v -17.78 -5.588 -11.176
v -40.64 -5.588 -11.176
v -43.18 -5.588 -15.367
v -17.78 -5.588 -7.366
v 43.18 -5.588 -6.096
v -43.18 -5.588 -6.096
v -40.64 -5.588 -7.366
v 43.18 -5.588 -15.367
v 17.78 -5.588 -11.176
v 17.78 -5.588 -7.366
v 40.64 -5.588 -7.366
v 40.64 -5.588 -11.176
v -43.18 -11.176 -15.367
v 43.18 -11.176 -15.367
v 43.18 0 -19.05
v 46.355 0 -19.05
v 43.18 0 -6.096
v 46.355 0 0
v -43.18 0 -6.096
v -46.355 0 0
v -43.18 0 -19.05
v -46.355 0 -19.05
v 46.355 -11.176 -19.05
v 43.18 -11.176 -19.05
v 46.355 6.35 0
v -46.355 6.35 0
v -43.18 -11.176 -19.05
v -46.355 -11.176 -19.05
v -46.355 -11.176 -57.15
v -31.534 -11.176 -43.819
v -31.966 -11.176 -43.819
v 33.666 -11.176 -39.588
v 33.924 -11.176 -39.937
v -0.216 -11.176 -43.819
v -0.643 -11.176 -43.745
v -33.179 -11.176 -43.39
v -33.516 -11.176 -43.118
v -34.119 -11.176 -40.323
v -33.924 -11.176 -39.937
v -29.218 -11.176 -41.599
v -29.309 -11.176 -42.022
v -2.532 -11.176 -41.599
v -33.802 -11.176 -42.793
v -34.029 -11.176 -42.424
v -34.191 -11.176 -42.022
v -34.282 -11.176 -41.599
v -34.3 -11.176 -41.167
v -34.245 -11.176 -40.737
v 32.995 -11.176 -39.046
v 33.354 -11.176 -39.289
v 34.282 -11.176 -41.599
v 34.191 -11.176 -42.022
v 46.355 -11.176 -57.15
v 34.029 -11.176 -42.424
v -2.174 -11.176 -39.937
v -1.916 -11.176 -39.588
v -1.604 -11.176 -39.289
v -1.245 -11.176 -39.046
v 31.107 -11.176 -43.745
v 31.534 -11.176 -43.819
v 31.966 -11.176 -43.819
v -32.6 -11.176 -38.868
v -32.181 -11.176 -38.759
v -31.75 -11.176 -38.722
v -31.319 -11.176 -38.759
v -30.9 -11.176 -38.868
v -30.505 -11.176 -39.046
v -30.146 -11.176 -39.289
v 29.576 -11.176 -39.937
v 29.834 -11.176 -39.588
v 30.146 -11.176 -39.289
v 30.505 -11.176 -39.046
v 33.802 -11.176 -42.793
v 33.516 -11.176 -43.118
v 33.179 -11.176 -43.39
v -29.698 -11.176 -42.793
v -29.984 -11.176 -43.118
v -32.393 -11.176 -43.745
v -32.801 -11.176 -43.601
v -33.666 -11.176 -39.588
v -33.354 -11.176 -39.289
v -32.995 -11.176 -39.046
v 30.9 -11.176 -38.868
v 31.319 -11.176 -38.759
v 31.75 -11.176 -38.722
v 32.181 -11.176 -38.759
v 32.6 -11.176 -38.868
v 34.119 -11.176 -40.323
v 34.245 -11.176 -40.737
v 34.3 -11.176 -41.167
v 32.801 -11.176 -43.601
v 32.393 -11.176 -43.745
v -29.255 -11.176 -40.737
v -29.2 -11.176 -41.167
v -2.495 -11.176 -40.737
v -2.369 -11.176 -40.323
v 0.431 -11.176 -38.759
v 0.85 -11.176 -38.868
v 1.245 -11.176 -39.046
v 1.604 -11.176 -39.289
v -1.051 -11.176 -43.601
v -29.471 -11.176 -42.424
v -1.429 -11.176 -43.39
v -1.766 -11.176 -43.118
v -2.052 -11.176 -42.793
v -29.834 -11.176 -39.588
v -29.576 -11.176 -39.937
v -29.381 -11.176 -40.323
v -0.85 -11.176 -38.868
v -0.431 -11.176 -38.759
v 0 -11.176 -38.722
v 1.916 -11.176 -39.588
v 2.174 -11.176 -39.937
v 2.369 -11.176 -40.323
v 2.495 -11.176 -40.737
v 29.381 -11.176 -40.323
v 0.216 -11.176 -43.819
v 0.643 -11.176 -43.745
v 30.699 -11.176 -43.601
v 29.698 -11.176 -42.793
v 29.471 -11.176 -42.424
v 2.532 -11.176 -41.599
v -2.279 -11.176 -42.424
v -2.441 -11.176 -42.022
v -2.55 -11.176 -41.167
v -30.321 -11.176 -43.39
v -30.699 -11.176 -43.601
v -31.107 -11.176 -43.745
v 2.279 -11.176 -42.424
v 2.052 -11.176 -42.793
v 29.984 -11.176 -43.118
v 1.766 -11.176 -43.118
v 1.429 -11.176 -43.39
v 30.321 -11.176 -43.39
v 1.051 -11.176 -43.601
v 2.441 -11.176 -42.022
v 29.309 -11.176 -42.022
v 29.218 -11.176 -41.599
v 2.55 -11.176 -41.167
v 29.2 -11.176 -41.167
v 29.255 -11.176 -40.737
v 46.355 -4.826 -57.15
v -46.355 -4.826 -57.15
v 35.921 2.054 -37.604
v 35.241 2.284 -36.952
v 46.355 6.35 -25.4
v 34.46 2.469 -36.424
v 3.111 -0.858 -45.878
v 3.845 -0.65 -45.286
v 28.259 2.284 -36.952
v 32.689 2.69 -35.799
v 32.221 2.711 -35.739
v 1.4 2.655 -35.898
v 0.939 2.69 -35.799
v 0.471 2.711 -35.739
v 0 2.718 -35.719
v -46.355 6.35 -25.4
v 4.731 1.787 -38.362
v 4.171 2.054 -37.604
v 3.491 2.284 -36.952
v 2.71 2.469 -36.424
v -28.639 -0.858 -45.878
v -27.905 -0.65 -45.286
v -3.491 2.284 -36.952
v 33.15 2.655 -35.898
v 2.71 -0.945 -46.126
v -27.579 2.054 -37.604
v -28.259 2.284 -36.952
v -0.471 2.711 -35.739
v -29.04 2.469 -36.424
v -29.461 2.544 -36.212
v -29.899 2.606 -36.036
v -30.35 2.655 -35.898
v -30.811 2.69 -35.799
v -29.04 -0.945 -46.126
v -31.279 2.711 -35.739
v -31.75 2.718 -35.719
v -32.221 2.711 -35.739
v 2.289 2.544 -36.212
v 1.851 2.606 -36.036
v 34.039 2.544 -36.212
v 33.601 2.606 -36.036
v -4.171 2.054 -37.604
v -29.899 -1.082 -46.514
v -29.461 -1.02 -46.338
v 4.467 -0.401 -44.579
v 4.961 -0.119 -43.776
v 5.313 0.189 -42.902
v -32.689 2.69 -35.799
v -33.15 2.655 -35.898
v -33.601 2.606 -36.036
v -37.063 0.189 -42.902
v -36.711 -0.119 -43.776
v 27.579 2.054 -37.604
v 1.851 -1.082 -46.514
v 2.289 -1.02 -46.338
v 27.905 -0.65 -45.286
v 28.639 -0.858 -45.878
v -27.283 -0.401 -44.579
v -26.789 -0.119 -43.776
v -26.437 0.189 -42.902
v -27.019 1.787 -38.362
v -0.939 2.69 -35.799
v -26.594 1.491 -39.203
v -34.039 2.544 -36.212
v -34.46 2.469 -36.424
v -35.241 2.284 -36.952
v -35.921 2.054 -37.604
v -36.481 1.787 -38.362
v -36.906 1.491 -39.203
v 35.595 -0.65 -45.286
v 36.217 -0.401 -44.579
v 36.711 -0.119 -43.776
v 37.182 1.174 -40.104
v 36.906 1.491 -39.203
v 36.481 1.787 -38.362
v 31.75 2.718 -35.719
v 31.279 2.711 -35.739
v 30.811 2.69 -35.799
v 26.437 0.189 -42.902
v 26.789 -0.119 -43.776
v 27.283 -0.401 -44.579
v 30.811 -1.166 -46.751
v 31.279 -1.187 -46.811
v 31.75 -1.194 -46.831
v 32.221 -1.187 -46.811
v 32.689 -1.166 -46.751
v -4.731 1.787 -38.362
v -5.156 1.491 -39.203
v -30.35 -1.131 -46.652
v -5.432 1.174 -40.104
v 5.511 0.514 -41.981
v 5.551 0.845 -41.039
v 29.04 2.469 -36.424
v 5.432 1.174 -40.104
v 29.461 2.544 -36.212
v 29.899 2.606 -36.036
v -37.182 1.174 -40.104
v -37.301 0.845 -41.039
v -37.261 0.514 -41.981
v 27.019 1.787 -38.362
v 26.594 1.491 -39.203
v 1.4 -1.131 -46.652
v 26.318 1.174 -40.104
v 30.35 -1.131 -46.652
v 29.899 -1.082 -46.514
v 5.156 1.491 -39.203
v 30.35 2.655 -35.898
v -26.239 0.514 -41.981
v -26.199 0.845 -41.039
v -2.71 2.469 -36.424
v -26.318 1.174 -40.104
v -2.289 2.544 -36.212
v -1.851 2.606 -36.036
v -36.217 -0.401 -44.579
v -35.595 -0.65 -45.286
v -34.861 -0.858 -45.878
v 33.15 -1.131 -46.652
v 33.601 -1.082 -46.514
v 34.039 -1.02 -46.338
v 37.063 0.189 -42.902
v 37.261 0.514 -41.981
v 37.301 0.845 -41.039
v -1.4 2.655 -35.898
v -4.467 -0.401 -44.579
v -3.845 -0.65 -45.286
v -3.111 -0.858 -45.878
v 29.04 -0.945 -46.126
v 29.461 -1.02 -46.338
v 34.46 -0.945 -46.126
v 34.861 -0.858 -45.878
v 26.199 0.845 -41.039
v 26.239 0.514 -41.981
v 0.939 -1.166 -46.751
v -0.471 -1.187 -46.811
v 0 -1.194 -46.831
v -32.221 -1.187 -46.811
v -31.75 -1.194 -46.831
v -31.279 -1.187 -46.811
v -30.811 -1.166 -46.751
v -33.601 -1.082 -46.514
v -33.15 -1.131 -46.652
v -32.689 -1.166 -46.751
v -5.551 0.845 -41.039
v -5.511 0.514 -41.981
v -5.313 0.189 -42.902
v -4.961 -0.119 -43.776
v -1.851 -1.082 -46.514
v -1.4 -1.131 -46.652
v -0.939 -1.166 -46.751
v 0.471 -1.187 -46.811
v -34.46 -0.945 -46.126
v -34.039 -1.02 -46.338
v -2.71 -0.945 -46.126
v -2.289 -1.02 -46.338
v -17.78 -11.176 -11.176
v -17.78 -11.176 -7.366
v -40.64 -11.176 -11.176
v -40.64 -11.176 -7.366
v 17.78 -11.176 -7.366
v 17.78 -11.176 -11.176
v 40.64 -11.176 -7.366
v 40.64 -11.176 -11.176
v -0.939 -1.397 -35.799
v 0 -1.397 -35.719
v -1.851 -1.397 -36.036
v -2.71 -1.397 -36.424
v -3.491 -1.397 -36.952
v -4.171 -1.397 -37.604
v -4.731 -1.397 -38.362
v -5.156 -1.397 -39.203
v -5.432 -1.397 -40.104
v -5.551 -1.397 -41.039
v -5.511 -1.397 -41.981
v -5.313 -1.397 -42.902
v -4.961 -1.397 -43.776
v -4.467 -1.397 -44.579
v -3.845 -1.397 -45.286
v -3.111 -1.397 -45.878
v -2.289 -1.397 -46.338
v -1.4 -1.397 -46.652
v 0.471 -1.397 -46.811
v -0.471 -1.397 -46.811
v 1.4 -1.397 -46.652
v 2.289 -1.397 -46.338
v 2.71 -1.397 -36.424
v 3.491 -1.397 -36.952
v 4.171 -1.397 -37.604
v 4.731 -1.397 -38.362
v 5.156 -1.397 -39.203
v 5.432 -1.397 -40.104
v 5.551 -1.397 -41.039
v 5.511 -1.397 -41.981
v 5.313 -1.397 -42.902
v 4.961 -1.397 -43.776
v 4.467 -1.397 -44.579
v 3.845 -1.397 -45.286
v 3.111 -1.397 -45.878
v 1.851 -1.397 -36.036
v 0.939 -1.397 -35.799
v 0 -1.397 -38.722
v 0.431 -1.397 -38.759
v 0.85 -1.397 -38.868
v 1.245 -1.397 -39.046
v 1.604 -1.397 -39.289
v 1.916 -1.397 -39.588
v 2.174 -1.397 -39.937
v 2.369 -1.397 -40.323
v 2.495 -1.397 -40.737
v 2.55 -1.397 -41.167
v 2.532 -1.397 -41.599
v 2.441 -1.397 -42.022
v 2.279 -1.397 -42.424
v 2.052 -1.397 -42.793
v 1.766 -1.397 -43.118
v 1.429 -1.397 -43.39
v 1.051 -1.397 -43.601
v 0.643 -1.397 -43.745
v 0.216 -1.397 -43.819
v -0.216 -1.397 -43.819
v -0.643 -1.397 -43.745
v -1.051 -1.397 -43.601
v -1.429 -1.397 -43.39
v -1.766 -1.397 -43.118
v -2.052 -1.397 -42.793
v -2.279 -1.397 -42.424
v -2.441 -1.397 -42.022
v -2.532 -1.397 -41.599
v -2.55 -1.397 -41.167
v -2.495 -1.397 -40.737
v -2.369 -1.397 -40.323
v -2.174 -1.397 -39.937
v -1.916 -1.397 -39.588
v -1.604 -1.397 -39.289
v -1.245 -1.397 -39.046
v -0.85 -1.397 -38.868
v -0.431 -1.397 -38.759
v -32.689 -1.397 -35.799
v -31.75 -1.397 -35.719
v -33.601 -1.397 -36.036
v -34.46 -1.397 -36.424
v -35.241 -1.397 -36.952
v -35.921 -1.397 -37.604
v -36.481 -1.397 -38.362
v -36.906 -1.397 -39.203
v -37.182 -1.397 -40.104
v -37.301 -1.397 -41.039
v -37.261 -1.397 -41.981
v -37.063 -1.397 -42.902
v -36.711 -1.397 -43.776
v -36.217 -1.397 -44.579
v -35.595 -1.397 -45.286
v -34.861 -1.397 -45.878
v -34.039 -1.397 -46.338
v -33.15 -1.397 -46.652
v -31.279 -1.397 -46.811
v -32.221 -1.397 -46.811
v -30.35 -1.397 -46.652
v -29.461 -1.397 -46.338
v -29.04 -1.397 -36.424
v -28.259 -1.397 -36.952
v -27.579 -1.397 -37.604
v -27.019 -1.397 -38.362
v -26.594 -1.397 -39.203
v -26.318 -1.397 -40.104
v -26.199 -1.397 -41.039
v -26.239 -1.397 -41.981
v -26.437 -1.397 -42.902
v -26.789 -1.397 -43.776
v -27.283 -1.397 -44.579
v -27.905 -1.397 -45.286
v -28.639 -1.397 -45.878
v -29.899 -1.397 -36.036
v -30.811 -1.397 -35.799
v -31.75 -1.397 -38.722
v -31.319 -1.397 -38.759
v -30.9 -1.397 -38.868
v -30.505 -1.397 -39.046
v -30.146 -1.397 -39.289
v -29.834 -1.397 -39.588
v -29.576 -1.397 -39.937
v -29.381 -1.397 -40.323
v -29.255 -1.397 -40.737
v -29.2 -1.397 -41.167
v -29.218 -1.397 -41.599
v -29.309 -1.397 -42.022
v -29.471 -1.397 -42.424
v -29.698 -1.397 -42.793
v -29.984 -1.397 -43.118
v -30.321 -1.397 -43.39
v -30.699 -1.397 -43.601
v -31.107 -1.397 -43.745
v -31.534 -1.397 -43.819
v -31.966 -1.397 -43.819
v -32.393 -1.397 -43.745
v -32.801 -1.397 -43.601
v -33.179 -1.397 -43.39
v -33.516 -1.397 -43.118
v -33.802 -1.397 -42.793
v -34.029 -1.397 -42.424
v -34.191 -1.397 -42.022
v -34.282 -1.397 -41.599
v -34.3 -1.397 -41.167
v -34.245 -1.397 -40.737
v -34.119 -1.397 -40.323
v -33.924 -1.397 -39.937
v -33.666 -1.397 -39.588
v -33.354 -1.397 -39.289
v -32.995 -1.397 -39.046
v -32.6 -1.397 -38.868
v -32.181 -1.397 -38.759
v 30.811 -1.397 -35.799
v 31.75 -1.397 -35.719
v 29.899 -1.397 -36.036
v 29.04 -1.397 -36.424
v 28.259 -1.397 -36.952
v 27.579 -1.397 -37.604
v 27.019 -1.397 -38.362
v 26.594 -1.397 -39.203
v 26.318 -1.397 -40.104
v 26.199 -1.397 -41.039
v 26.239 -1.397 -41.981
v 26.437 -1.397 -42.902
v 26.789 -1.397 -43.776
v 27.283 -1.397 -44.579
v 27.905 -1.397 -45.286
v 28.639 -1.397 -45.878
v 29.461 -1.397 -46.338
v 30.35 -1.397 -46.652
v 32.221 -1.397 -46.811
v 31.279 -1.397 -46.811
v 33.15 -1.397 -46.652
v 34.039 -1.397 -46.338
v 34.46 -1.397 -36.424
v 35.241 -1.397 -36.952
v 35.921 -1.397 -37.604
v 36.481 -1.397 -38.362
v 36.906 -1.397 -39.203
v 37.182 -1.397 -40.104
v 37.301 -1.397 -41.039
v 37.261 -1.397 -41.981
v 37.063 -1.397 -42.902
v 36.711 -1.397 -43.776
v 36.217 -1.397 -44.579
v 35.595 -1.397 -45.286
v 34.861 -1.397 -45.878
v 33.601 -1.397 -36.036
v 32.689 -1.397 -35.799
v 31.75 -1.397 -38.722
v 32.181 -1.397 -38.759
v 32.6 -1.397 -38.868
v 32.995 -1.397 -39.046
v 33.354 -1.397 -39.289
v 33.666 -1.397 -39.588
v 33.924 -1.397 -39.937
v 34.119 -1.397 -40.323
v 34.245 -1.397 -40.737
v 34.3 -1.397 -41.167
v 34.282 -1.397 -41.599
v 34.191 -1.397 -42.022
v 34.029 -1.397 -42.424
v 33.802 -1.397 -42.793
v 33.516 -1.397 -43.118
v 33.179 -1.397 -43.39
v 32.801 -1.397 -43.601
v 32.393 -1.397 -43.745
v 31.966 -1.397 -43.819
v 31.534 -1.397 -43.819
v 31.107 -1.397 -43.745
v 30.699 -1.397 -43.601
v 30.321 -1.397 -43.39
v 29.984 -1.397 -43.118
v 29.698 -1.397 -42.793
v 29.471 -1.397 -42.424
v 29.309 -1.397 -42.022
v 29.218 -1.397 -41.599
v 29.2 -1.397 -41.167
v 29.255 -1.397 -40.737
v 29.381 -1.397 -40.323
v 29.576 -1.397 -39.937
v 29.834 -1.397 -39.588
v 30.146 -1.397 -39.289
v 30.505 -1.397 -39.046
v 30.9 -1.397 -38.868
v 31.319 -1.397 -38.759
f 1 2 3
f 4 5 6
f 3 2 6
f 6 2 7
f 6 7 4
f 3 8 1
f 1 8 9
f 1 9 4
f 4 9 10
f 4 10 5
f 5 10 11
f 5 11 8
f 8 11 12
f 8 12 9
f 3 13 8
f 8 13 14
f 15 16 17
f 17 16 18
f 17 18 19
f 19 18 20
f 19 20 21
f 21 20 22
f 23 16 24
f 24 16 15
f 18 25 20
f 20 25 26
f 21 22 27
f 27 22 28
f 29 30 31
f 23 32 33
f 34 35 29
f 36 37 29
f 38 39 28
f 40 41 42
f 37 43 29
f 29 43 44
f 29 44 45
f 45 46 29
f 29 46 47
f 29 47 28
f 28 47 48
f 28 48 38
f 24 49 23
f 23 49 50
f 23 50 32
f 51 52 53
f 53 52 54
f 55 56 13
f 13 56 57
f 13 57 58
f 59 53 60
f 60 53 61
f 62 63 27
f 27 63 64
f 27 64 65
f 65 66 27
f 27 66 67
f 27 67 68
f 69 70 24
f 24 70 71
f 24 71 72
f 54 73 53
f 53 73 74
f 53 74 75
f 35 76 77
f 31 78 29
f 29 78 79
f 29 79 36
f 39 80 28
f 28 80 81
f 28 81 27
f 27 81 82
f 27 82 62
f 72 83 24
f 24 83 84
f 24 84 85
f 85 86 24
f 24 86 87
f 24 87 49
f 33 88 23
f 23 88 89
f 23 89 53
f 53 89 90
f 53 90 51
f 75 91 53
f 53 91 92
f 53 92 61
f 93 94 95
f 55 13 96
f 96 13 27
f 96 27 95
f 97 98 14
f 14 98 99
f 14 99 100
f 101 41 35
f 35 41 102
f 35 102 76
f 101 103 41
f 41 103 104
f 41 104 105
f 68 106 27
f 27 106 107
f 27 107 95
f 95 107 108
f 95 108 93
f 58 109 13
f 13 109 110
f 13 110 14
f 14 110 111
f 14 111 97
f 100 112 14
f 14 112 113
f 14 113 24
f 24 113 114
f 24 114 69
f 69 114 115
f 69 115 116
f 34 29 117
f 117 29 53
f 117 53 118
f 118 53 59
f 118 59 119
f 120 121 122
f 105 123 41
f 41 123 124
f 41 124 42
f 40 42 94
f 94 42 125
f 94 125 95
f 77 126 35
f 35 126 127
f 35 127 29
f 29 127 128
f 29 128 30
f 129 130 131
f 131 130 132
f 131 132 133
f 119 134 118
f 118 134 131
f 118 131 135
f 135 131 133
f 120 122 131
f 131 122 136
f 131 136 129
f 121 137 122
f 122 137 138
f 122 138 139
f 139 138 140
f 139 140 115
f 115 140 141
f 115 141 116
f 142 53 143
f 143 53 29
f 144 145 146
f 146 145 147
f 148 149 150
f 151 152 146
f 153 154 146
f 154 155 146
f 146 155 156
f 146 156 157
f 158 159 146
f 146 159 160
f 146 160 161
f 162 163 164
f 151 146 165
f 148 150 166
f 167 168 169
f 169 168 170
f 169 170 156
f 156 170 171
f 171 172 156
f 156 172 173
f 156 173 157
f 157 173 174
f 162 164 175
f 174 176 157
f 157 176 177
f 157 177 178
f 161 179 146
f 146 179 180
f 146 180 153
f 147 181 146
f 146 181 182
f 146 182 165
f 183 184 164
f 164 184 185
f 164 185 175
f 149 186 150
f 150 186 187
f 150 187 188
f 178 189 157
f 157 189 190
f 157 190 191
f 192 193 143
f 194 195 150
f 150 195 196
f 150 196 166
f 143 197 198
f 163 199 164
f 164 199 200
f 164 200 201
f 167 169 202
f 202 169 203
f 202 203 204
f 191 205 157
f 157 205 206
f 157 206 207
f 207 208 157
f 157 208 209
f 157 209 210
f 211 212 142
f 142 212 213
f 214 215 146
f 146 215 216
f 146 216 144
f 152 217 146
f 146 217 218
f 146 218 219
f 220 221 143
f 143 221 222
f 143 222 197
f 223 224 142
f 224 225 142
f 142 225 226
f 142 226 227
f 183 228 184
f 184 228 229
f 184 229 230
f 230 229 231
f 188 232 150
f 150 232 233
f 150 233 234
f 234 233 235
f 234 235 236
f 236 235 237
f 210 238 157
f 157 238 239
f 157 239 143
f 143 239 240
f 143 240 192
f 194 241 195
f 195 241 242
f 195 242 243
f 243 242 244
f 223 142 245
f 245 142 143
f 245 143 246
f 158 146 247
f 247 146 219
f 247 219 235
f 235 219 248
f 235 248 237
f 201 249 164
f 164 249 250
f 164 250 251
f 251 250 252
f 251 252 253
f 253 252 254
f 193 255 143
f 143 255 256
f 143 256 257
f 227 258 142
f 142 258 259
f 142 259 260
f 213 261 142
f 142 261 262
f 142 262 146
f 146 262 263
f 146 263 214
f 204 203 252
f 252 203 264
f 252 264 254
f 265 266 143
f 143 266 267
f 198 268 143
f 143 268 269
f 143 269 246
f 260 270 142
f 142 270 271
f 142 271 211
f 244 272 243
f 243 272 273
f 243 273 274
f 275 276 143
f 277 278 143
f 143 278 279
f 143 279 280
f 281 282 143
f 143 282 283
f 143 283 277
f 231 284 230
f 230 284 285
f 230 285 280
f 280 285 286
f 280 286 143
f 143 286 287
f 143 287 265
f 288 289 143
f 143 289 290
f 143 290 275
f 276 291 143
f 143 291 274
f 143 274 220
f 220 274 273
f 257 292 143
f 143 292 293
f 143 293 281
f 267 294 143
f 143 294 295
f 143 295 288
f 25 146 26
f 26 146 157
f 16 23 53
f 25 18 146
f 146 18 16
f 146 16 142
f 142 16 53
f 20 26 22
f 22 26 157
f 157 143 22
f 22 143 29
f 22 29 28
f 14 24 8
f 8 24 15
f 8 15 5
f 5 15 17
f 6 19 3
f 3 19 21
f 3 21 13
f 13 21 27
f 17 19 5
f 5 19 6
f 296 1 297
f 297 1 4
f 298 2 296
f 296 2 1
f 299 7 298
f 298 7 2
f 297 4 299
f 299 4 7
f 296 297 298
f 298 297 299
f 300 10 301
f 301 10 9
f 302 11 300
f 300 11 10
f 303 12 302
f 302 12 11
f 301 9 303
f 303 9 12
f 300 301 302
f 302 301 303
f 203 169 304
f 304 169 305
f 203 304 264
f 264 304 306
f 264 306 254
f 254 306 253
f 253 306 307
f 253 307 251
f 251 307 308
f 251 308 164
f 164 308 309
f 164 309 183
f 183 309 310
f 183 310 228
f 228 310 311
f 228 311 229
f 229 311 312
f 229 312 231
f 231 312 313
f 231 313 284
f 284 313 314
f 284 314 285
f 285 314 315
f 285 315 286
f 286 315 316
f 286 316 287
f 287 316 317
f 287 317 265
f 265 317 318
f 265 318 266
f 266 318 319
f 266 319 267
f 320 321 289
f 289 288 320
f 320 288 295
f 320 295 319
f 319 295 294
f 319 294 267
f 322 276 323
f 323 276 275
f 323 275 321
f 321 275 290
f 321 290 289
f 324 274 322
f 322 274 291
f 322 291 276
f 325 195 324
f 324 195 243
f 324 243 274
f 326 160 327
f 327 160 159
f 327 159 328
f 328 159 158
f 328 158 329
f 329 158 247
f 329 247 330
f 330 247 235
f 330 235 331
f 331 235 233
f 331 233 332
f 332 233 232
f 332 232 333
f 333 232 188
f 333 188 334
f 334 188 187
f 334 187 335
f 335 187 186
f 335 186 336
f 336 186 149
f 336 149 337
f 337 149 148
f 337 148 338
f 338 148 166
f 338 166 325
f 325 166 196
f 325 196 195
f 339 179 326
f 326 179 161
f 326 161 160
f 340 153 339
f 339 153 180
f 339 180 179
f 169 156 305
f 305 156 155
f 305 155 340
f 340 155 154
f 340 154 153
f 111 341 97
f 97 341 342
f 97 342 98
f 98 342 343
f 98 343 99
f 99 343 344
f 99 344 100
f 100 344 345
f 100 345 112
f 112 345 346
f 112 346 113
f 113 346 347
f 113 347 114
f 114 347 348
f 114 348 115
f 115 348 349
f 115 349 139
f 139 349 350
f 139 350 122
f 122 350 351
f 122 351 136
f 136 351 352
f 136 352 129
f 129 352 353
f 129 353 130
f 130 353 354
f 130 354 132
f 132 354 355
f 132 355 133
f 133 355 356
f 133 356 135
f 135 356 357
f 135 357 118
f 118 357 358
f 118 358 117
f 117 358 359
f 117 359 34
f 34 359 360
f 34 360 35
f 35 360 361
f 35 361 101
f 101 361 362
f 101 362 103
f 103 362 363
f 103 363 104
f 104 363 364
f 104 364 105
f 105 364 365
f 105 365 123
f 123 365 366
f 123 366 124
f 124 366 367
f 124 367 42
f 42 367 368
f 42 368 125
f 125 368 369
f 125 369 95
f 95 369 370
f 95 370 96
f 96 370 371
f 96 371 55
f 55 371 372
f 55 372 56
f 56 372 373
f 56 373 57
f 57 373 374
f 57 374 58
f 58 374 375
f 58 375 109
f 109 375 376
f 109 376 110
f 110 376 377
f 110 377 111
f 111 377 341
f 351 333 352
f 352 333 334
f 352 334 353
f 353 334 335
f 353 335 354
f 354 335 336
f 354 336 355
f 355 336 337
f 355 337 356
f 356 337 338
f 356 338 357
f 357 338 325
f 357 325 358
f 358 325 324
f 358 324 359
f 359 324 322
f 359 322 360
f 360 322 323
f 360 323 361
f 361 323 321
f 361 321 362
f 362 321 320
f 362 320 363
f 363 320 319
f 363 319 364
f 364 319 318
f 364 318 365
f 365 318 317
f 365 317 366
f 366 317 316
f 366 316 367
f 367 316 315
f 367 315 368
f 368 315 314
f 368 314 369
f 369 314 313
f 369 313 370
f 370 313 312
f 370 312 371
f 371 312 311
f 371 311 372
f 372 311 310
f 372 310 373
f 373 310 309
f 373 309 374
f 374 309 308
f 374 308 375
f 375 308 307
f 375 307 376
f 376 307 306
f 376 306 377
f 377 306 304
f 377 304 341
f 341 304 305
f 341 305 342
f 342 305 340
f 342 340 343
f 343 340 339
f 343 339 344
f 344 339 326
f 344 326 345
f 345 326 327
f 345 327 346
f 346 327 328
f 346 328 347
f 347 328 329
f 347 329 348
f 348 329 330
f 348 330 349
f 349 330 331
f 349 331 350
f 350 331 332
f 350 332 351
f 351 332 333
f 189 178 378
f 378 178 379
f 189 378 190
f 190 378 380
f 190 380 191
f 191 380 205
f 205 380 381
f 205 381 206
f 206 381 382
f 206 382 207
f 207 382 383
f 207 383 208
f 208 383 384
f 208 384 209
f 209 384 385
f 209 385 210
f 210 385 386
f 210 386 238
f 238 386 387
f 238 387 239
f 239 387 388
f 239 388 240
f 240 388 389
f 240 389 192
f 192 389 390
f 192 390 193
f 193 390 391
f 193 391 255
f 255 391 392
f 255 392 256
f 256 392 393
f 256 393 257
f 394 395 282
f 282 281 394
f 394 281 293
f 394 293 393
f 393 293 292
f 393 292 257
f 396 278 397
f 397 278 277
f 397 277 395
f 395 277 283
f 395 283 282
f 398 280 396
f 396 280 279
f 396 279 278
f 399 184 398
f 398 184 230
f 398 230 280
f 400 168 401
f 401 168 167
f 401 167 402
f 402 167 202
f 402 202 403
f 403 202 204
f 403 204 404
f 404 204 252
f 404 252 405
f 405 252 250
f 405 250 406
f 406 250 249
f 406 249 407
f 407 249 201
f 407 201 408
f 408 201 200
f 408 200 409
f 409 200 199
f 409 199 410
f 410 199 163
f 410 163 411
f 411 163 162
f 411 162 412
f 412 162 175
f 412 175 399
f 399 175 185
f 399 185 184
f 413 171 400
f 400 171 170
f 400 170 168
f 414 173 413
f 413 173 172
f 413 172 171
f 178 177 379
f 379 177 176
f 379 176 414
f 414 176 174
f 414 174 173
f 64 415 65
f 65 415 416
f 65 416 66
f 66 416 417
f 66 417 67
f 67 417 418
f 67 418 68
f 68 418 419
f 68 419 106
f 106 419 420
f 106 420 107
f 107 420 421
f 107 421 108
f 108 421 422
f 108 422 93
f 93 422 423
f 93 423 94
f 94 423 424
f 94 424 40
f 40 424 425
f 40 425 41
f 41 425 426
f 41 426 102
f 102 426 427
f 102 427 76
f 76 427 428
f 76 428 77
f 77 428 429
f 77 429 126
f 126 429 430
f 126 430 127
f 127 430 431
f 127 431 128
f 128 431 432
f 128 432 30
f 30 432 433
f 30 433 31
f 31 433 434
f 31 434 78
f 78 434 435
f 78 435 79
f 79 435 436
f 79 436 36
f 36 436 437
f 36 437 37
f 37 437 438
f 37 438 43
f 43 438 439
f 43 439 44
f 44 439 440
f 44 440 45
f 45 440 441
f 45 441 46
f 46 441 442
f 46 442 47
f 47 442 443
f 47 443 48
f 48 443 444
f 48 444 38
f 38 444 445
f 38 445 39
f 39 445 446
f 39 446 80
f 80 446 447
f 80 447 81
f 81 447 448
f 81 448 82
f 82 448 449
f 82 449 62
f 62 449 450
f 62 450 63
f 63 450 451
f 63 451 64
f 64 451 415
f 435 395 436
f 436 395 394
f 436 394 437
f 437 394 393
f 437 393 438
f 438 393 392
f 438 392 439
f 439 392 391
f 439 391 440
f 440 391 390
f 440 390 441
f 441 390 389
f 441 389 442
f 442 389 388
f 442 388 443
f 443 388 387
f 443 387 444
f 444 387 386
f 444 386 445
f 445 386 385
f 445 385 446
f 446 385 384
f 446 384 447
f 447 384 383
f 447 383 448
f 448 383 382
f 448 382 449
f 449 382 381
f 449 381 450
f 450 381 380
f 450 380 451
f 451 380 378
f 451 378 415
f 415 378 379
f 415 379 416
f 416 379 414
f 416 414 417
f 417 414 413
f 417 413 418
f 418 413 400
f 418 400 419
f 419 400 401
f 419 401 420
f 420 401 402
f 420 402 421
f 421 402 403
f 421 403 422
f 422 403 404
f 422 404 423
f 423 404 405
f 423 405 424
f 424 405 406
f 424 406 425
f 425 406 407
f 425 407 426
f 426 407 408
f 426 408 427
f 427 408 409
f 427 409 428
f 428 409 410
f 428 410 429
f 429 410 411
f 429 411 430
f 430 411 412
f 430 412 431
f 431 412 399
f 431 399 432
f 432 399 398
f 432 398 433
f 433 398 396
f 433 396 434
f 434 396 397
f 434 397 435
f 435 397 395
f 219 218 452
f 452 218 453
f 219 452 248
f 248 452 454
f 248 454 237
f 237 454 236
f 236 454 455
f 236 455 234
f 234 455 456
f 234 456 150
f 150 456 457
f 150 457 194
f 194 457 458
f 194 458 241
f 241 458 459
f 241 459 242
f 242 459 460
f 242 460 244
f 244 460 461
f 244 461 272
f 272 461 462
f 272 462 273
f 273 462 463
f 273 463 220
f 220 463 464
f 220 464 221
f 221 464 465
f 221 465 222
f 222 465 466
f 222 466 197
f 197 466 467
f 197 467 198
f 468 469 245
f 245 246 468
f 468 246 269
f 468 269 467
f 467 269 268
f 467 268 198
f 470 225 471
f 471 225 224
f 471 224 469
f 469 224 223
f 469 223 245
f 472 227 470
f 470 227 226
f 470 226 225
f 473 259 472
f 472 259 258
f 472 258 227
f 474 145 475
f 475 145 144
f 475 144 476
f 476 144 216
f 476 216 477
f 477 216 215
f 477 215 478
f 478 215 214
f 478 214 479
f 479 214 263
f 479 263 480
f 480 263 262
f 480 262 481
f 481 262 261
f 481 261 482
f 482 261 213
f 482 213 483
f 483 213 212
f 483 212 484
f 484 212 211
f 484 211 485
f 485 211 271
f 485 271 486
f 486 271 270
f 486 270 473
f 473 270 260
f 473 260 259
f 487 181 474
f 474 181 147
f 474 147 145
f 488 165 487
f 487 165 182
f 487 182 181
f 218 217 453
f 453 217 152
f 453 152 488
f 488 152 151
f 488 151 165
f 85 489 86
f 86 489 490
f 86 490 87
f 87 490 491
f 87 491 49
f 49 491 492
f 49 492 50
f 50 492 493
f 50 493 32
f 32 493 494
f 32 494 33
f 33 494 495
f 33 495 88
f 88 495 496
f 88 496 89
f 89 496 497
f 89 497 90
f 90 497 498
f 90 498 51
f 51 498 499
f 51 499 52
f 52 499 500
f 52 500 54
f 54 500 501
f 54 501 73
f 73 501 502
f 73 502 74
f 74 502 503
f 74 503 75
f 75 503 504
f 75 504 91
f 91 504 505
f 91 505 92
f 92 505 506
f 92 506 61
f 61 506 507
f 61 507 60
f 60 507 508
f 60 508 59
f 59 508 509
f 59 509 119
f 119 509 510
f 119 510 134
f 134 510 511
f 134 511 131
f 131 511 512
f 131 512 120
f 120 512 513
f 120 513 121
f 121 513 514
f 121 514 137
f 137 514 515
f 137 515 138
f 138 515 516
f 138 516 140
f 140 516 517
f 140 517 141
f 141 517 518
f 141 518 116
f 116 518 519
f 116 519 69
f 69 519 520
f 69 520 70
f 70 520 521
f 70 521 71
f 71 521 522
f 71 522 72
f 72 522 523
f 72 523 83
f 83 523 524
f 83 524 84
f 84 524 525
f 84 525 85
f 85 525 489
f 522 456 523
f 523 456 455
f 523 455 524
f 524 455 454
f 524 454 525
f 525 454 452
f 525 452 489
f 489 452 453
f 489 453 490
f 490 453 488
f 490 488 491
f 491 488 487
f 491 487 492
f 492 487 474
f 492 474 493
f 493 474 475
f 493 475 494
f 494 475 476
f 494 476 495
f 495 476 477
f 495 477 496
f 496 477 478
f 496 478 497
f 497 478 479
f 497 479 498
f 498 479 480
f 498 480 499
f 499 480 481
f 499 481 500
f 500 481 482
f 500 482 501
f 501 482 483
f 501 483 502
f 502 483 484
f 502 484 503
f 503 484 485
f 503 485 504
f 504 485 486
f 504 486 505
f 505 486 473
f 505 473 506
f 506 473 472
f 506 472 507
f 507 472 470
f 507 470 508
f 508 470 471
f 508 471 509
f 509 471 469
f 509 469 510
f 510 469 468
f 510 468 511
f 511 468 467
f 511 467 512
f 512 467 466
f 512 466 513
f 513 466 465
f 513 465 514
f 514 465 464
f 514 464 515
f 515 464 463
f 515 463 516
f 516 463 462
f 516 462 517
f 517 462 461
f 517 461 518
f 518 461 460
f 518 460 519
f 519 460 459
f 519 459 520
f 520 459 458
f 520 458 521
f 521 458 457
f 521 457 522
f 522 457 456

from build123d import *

# Parameters (mm, degrees)
BOSS_EXTRUDE1_DEPTH                                 = 46.355
SKETCH3_W                                           = 86.36
SKETCH3_H                                           = 3.683
BOSS_EXTRUDE2_DEPTH                                 = 11.176
SKETCH3_3_W                                         = 86.36
SKETCH3_3_H                                         = 9.271
BOSS_EXTRUDE3_DEPTH                                 = 5.588
SKETCH4_W                                           = 22.86
SKETCH4_H                                           = 3.81
BOSS_EXTRUDE4_DEPTH                                 = 5.588
CBORE_FOR_10_BINDING_HEAD_MACHINE_SCREW_D           = 5.1054
CBORE_FOR_10_BINDING_HEAD_MACHINE_SCREW_CBORE_D     = 11.1125
CBORE_FOR_10_BINDING_HEAD_MACHINE_SCREW_CBORE_DEPTH = 7.747


with BuildPart() as part:
    # Sketch2 → Boss-Extrude1 (new body, symmetric)
    with BuildSketch(Plane(origin=(0, 0, 0), x_dir=(0, 0, -1), z_dir=(1, 0, 0))):
        Polygon((19.05, 0), (19.05, -11.176), (57.15, -11.176), (57.15, -4.826), (25.4, 6.35), (0, 6.35), (0, 0), align=None)
    extrude(amount=BOSS_EXTRUDE1_DEPTH, both=True)

    # Sketch3 → Boss-Extrude2 (add)
    with BuildSketch(Plane.XZ):
        with Locations((0, -17.2085)):
            Rectangle(SKETCH3_W, SKETCH3_H)
    extrude(amount=BOSS_EXTRUDE2_DEPTH)

    # Sketch3<3> → Boss-Extrude3 (add)
    with BuildSketch(Plane.XZ):
        with Locations((0, -10.7315)):
            Rectangle(SKETCH3_3_W, SKETCH3_3_H)
    extrude(amount=BOSS_EXTRUDE3_DEPTH)

    # Sketch4 → Boss-Extrude4 (add)
    with BuildSketch(Plane.XZ.offset(5.588)):
        with Locations((-29.21, -9.271)):
            Rectangle(SKETCH4_W, SKETCH4_H)
        with Locations((29.21, -9.271)):
            Rectangle(SKETCH4_W, SKETCH4_H)
    extrude(amount=BOSS_EXTRUDE4_DEPTH)

    # CBORE for #10 Binding Head Machine Screw1 (through all)
    with Locations(Plane(origin=(0, 6.35, 0), x_dir=(-1, 0, 0), z_dir=(0, 1, 0))):
        with Locations((-31.75, -41.275), (0, -41.275), (31.75, -41.275)):
            CounterBoreHole(CBORE_FOR_10_BINDING_HEAD_MACHINE_SCREW_D / 2, CBORE_FOR_10_BINDING_HEAD_MACHINE_SCREW_CBORE_D / 2, CBORE_FOR_10_BINDING_HEAD_MACHINE_SCREW_CBORE_DEPTH)


solid = part.part
